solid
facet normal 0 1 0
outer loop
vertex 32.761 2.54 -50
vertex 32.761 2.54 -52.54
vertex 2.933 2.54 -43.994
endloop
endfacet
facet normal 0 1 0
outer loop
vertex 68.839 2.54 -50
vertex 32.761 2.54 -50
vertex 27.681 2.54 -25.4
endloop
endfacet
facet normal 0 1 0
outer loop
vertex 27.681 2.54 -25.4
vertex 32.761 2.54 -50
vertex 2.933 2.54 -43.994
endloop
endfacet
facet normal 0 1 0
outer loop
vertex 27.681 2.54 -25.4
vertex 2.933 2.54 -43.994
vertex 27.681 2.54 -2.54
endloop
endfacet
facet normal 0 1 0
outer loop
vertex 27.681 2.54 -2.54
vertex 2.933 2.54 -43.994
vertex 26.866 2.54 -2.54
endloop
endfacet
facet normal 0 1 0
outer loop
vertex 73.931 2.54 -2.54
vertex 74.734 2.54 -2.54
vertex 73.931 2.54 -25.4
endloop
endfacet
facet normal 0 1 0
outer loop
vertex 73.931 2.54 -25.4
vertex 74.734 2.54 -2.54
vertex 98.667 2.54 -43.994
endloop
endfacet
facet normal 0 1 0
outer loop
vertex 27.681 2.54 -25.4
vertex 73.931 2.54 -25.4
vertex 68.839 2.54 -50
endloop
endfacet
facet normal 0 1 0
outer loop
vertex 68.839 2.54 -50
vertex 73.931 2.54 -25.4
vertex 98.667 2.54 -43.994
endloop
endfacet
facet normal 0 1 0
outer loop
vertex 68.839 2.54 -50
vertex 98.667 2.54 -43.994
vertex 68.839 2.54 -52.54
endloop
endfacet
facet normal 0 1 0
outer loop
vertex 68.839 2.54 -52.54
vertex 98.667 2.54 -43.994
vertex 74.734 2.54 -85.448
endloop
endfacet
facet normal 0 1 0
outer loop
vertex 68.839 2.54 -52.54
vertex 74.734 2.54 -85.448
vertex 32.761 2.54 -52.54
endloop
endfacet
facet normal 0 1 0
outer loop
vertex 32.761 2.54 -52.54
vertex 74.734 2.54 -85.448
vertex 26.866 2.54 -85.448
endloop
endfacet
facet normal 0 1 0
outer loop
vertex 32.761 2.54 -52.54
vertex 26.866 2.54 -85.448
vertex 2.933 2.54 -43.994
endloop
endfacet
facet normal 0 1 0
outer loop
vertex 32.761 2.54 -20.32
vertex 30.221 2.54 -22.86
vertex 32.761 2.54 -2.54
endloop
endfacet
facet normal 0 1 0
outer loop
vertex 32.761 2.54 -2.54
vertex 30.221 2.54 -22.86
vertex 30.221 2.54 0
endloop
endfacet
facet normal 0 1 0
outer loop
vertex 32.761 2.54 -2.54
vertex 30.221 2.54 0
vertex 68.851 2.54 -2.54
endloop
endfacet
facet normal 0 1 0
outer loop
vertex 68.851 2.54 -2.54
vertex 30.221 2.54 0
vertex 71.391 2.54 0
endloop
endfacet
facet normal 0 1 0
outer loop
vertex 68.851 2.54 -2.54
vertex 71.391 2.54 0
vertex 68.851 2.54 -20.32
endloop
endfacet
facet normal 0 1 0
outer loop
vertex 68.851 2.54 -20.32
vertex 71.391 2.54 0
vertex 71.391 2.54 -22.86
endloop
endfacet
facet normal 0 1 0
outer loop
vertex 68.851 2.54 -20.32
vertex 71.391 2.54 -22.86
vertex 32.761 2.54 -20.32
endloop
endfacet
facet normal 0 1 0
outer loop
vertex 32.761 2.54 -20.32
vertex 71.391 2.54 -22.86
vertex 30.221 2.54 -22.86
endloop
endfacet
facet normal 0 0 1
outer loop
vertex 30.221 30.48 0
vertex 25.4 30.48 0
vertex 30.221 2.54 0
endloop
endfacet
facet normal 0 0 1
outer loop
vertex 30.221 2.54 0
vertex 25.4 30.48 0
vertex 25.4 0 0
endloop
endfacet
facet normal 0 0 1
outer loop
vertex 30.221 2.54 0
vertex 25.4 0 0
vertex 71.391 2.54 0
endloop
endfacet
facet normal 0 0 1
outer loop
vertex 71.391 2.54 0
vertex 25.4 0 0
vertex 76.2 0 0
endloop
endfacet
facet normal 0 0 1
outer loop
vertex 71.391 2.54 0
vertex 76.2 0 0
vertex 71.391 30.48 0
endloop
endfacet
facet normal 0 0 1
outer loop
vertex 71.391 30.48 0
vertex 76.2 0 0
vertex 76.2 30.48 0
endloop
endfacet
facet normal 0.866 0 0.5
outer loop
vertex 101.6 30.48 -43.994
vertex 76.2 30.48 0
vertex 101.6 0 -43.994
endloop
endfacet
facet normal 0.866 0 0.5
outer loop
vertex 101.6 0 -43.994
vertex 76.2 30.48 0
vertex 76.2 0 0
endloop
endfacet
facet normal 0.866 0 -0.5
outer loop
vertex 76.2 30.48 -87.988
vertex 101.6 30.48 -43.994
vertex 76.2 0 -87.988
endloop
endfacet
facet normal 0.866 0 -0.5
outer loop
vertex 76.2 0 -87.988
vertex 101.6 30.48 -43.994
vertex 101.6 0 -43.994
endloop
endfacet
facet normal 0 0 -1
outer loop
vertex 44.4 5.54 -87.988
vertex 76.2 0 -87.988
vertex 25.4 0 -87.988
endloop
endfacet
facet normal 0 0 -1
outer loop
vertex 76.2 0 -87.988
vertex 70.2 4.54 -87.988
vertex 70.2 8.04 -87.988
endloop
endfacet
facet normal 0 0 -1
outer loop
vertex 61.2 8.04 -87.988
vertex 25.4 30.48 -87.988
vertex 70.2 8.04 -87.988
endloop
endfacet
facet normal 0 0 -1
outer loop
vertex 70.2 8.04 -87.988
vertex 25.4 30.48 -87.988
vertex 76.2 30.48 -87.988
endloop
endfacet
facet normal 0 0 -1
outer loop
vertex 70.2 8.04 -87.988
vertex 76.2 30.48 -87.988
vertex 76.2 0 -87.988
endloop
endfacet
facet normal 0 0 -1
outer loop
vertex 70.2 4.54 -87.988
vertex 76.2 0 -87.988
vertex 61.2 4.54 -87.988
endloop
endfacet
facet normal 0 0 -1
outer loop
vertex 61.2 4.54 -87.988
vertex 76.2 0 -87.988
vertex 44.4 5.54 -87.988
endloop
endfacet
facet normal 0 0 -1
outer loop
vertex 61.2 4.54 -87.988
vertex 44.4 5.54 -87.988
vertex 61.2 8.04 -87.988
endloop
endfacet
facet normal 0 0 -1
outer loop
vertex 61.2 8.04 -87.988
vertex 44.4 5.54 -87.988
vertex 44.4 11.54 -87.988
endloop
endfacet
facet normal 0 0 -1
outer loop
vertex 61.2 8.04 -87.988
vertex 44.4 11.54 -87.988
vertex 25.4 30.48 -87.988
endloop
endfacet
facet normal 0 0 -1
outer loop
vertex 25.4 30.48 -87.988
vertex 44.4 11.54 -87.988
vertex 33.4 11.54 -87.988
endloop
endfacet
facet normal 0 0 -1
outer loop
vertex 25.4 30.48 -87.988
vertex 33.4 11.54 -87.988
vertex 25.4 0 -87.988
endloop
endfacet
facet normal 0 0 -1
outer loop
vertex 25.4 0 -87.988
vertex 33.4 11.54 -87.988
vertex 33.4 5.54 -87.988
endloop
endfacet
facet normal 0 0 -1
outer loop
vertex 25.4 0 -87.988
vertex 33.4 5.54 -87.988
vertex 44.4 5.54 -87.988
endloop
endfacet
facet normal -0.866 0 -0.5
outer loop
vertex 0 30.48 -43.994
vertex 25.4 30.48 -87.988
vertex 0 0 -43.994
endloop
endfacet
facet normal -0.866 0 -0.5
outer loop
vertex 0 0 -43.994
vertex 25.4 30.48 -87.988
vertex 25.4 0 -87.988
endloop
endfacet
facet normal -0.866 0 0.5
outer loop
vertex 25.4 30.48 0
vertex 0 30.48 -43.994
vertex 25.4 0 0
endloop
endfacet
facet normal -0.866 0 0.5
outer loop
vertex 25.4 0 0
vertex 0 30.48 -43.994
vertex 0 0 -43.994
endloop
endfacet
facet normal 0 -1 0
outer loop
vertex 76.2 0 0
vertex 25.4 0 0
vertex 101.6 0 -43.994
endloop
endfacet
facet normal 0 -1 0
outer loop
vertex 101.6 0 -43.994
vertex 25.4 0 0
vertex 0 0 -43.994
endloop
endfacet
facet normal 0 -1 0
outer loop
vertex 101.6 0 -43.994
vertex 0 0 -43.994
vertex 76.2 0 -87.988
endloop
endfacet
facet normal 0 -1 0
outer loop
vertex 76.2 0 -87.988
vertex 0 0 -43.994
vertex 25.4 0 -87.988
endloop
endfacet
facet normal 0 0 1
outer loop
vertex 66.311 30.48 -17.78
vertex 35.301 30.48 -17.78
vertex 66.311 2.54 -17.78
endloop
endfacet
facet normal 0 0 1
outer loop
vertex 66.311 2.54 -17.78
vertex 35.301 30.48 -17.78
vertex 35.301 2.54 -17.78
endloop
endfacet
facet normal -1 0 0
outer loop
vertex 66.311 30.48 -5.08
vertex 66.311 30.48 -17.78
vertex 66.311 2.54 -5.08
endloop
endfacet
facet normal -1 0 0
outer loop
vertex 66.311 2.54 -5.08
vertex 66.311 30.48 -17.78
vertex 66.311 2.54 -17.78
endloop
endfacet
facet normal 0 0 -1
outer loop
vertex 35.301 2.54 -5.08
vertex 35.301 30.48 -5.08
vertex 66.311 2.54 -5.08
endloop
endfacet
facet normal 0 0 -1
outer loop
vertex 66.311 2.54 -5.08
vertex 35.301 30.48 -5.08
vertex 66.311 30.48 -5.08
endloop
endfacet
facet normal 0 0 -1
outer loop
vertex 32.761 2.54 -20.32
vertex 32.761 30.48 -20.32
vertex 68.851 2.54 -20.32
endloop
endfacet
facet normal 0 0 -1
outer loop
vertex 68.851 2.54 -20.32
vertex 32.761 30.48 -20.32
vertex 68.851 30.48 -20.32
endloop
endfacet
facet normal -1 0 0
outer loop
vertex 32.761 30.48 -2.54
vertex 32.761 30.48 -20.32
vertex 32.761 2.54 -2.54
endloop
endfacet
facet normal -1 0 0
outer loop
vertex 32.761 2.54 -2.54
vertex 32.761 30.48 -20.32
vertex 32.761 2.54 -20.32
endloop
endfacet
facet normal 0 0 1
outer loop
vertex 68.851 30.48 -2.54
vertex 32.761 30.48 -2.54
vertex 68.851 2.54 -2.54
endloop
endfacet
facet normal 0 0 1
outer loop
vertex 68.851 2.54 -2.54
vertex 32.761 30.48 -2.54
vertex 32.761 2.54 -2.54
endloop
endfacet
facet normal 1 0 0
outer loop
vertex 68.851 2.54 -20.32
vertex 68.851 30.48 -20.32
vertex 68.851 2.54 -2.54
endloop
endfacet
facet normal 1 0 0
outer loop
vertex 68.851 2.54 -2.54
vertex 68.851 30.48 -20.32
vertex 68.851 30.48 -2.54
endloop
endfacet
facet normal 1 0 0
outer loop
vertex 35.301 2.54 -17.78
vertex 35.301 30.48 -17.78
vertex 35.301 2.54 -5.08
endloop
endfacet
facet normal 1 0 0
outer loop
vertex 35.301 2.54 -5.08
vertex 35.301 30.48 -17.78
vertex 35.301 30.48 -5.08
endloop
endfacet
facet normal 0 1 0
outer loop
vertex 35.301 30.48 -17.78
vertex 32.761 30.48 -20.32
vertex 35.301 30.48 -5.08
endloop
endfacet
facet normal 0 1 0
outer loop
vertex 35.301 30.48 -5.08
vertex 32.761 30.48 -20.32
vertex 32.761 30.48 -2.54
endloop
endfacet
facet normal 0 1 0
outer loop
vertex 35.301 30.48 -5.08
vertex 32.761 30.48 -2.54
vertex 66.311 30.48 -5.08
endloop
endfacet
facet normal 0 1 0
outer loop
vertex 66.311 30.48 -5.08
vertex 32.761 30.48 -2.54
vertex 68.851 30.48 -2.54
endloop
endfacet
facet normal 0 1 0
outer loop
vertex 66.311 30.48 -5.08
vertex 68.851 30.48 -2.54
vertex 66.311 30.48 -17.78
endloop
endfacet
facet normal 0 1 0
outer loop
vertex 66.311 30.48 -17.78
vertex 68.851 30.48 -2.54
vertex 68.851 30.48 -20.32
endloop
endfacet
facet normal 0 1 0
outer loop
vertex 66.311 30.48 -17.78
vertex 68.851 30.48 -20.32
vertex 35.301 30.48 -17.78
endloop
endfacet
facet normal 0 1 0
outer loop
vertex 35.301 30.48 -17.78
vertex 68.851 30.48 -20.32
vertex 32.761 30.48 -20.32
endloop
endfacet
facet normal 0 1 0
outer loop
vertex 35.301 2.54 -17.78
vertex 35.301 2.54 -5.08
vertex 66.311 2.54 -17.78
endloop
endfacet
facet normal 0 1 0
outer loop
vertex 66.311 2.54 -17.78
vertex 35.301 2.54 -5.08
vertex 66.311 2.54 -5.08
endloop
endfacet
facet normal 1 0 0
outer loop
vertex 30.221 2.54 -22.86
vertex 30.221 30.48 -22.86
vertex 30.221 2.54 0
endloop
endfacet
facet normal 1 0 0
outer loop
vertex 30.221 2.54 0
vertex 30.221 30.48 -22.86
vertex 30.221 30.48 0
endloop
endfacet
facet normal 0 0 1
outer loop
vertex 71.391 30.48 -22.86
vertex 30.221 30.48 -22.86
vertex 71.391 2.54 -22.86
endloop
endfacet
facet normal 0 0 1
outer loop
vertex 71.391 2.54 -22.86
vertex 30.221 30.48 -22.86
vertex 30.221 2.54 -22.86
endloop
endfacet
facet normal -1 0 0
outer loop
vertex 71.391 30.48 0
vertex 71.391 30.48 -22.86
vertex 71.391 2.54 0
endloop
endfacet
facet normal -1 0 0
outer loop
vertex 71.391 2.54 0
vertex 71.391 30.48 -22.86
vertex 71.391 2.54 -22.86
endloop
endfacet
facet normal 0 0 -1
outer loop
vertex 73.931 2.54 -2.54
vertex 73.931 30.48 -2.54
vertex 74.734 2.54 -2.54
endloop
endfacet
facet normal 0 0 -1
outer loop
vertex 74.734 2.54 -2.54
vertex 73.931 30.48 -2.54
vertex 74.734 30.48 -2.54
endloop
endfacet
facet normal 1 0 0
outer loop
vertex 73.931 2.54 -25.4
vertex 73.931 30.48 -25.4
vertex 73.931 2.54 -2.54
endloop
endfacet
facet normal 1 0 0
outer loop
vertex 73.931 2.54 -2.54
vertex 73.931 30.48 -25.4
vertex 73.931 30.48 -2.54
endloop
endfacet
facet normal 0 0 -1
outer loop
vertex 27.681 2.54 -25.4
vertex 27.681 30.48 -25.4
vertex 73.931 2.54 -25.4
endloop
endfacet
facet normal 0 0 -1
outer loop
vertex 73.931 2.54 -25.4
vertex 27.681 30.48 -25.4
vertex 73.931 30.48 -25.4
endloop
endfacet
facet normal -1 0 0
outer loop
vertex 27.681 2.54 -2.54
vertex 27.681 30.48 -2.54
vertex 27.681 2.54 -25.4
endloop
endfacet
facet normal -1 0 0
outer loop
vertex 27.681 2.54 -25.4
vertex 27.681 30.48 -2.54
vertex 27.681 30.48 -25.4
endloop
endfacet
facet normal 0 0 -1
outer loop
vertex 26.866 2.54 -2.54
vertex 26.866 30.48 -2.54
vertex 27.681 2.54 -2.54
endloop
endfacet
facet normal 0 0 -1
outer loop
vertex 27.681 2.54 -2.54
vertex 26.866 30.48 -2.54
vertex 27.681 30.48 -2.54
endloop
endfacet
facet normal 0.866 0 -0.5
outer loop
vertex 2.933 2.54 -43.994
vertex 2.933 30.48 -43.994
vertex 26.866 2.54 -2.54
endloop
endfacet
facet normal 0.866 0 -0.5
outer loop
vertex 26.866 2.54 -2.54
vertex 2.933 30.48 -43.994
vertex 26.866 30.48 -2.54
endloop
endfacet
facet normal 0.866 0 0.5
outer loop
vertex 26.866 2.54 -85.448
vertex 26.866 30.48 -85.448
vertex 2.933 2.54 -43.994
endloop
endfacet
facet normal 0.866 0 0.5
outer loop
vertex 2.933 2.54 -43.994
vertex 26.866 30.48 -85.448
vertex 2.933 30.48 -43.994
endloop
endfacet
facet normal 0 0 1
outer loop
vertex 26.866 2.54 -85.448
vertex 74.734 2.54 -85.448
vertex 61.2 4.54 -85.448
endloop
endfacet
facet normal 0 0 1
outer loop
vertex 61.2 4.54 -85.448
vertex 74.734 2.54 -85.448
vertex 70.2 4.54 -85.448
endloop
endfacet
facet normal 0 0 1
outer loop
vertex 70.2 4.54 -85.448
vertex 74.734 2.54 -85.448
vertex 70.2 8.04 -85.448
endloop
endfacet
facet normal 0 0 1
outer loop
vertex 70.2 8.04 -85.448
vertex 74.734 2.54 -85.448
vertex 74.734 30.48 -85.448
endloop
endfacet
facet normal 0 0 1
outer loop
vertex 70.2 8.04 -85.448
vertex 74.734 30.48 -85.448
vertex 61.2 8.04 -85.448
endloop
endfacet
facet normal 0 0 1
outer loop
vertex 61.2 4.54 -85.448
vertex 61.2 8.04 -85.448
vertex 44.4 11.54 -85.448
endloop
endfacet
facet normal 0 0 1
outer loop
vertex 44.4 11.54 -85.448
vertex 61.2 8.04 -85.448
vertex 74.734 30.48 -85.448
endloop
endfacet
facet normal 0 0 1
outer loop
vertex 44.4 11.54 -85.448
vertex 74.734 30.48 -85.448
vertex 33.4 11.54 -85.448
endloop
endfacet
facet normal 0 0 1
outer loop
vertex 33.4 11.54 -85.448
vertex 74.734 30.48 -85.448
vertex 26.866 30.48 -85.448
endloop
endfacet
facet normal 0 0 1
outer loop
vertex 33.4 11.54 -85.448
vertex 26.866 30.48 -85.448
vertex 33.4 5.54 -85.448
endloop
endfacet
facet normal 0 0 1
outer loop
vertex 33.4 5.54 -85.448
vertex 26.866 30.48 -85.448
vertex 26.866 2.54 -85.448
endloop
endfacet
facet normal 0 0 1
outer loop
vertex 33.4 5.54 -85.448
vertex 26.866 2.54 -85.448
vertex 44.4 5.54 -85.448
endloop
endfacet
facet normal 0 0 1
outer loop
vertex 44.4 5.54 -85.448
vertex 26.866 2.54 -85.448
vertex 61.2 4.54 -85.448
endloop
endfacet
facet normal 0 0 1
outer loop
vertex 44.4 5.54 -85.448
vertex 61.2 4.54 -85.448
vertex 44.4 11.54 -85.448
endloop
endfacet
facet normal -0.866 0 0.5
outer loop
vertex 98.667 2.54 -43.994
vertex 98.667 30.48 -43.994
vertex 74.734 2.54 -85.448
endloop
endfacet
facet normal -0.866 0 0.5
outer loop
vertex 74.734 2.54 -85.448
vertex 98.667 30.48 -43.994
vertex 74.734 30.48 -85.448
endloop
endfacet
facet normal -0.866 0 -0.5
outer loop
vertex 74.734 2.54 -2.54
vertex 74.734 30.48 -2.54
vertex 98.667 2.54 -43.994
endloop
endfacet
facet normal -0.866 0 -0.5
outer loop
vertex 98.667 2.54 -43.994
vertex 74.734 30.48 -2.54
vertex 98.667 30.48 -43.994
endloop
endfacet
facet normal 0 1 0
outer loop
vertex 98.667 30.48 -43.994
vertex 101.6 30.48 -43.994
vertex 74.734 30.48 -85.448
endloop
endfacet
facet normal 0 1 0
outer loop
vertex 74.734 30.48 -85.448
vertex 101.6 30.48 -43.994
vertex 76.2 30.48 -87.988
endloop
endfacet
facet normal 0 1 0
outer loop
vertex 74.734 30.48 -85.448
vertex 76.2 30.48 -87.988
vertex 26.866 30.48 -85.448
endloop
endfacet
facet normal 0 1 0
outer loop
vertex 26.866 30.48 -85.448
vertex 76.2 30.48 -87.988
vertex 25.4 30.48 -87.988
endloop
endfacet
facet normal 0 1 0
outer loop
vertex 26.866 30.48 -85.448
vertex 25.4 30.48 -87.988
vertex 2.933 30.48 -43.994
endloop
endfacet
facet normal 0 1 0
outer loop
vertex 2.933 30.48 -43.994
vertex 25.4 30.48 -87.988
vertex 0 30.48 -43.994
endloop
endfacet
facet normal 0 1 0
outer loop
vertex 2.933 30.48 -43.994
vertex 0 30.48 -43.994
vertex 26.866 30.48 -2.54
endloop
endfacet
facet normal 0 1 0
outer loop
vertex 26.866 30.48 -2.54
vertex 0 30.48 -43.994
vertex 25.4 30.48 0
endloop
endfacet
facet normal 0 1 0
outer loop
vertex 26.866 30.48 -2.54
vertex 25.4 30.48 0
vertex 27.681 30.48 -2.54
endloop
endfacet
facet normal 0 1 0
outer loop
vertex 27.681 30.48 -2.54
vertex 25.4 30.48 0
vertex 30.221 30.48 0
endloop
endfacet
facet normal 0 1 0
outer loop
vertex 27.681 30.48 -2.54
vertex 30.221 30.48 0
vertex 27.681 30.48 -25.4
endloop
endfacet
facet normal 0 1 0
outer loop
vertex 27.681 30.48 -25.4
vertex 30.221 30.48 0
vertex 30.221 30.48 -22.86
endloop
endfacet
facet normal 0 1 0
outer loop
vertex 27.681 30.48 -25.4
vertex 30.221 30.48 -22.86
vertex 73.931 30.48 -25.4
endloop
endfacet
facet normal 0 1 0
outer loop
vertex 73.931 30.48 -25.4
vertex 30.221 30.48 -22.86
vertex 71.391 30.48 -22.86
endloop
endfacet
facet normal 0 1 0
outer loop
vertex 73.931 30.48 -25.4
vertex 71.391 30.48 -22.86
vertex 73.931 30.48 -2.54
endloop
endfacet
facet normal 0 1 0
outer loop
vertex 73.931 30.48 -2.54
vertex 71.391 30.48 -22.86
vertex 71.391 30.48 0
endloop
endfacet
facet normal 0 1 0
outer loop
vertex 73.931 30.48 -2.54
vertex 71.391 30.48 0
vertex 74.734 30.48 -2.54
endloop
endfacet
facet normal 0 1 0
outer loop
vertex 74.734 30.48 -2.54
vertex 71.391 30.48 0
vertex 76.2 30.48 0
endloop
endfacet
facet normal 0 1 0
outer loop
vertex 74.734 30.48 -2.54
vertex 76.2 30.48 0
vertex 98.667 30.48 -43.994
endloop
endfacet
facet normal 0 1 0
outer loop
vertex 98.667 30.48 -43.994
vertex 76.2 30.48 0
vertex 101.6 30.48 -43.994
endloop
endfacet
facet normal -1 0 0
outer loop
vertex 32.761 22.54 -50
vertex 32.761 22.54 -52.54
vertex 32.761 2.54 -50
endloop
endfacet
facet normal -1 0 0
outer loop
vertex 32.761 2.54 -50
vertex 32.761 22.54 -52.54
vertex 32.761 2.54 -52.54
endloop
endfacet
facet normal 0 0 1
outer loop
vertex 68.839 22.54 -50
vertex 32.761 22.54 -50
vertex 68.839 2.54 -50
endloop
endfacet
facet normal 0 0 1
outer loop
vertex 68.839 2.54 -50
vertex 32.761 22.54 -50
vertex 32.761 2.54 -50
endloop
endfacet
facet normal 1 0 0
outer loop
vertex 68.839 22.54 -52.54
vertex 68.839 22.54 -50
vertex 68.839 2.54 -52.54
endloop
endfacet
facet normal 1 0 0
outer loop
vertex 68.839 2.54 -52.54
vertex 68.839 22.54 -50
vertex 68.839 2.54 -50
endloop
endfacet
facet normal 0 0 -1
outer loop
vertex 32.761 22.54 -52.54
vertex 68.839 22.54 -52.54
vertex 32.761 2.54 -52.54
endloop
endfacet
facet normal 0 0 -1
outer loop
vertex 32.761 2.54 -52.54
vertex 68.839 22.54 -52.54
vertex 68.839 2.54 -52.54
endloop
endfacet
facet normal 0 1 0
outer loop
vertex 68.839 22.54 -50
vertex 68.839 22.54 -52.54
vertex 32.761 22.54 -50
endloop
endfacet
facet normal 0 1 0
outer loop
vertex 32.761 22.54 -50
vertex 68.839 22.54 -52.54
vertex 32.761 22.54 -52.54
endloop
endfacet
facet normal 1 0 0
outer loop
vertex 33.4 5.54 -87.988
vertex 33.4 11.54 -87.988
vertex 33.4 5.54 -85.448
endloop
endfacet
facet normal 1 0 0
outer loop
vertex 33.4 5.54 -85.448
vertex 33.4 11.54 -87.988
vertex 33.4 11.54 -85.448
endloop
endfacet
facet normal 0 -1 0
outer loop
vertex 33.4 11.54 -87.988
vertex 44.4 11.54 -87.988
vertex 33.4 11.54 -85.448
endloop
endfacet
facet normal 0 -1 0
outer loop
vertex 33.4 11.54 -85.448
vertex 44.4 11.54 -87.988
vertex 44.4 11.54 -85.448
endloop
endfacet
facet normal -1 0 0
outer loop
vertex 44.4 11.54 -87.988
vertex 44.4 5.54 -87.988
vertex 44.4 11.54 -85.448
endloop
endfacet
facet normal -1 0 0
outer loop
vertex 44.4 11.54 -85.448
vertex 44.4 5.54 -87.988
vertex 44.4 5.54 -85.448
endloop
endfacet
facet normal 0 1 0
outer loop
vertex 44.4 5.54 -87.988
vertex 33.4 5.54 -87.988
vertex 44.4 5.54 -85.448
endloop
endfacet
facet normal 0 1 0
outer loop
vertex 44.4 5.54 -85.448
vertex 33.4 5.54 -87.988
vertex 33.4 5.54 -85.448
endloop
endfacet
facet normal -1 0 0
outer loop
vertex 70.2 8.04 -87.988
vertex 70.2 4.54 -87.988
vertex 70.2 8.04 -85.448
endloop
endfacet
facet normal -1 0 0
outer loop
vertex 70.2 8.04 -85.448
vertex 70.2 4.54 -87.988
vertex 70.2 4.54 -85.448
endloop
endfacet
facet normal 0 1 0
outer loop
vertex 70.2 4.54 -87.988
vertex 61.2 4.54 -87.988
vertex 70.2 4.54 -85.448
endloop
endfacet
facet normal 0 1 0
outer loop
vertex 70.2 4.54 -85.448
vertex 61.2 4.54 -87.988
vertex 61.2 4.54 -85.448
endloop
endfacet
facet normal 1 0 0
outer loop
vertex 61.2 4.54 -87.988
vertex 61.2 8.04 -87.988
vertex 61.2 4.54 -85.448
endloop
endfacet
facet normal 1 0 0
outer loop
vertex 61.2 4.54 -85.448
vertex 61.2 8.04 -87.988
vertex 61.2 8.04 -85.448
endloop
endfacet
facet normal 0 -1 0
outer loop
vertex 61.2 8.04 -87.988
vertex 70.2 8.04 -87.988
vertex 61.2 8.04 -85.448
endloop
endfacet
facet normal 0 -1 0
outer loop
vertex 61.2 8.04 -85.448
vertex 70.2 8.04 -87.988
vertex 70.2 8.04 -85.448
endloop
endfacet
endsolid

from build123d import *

# Parameters (mm, degrees)
BOSS_EXTRUDE1_DEPTH = 2.54
SKETCH3_W           = 36.089649417
SKETCH3_H           = 17.78
SKETCH3_W_2         = 31.009649417
SKETCH3_H_2         = 12.7
BOSS_EXTRUDE2_DEPTH = 30.48
SKETCH5_W           = 36.077770682
SKETCH5_H           = 2.54
BOSS_EXTRUDE3_DEPTH = 20
SKETCH7_W           = 9
SKETCH7_H           = 3.5
SKETCH7_W_2         = 11
SKETCH7_H_2         = 6
CUT_EXTRUDE1_DEPTH  = 3.54


with BuildPart() as part:
    # Sketch2 → Boss-Extrude1 (new body)
    with BuildSketch(Plane(origin=(0, 0, 0), x_dir=(1, 0, 0), z_dir=(0, 1, 0))):
        Polygon((76.2, 0), (101.6, 43.994090512), (76.2, 87.988181024), (25.4, 87.988181024), (0, 43.994090512), (25.4, 0), align=None)
    extrude(amount=BOSS_EXTRUDE1_DEPTH)

    # Sketch3 → Boss-Extrude2 (add)
    with BuildSketch(Plane(origin=(0, 0, 0), x_dir=(1, 0, 0), z_dir=(0, 1, 0))):
        with Locations((50.805939368, 11.43)):
            Rectangle(SKETCH3_W, SKETCH3_H)
        with Locations((50.805939368, 11.43)):
            Rectangle(SKETCH3_W_2, SKETCH3_H_2, mode=Mode.SUBTRACT)
        Polygon((30.221114659, 22.86), (30.221114659, 0), (25.4, 0), (0, 43.994090512), (25.4, 87.988181024), (76.2, 87.988181024), (101.6, 43.994090512), (76.2, 0), (71.390764076, 0), (71.390764076, 22.86), align=None)
        Polygon((73.930764076, 2.54), (74.733530316, 2.54), (98.667060633, 43.994090512), (74.733530316, 85.448181024), (26.866469684, 85.448181024), (2.932939367, 43.994090512), (26.866469684, 2.54), (27.681114659, 2.54), (27.681114659, 25.4), (73.930764076, 25.4), align=None, mode=Mode.SUBTRACT)
    extrude(amount=BOSS_EXTRUDE2_DEPTH)

    # Sketch5 → Boss-Extrude3 (add)
    with BuildSketch(Plane(origin=(0, 2.54, 0), x_dir=(1, 0, 0), z_dir=(0, 1, 0))):
        with Locations((50.8, 51.27)):
            Rectangle(SKETCH5_W, SKETCH5_H)
    extrude(amount=BOSS_EXTRUDE3_DEPTH)

    # Sketch7 → Cut-Extrude1 (cut, through all)
    with BuildSketch(Plane.XY.offset(-85.448181024)):
        with Locations((65.7, 6.29)):
            Rectangle(SKETCH7_W, SKETCH7_H)
        with Locations((38.9, 8.54)):
            Rectangle(SKETCH7_W_2, SKETCH7_H_2)
    extrude(amount=-CUT_EXTRUDE1_DEPTH, mode=Mode.SUBTRACT)


solid = part.part
